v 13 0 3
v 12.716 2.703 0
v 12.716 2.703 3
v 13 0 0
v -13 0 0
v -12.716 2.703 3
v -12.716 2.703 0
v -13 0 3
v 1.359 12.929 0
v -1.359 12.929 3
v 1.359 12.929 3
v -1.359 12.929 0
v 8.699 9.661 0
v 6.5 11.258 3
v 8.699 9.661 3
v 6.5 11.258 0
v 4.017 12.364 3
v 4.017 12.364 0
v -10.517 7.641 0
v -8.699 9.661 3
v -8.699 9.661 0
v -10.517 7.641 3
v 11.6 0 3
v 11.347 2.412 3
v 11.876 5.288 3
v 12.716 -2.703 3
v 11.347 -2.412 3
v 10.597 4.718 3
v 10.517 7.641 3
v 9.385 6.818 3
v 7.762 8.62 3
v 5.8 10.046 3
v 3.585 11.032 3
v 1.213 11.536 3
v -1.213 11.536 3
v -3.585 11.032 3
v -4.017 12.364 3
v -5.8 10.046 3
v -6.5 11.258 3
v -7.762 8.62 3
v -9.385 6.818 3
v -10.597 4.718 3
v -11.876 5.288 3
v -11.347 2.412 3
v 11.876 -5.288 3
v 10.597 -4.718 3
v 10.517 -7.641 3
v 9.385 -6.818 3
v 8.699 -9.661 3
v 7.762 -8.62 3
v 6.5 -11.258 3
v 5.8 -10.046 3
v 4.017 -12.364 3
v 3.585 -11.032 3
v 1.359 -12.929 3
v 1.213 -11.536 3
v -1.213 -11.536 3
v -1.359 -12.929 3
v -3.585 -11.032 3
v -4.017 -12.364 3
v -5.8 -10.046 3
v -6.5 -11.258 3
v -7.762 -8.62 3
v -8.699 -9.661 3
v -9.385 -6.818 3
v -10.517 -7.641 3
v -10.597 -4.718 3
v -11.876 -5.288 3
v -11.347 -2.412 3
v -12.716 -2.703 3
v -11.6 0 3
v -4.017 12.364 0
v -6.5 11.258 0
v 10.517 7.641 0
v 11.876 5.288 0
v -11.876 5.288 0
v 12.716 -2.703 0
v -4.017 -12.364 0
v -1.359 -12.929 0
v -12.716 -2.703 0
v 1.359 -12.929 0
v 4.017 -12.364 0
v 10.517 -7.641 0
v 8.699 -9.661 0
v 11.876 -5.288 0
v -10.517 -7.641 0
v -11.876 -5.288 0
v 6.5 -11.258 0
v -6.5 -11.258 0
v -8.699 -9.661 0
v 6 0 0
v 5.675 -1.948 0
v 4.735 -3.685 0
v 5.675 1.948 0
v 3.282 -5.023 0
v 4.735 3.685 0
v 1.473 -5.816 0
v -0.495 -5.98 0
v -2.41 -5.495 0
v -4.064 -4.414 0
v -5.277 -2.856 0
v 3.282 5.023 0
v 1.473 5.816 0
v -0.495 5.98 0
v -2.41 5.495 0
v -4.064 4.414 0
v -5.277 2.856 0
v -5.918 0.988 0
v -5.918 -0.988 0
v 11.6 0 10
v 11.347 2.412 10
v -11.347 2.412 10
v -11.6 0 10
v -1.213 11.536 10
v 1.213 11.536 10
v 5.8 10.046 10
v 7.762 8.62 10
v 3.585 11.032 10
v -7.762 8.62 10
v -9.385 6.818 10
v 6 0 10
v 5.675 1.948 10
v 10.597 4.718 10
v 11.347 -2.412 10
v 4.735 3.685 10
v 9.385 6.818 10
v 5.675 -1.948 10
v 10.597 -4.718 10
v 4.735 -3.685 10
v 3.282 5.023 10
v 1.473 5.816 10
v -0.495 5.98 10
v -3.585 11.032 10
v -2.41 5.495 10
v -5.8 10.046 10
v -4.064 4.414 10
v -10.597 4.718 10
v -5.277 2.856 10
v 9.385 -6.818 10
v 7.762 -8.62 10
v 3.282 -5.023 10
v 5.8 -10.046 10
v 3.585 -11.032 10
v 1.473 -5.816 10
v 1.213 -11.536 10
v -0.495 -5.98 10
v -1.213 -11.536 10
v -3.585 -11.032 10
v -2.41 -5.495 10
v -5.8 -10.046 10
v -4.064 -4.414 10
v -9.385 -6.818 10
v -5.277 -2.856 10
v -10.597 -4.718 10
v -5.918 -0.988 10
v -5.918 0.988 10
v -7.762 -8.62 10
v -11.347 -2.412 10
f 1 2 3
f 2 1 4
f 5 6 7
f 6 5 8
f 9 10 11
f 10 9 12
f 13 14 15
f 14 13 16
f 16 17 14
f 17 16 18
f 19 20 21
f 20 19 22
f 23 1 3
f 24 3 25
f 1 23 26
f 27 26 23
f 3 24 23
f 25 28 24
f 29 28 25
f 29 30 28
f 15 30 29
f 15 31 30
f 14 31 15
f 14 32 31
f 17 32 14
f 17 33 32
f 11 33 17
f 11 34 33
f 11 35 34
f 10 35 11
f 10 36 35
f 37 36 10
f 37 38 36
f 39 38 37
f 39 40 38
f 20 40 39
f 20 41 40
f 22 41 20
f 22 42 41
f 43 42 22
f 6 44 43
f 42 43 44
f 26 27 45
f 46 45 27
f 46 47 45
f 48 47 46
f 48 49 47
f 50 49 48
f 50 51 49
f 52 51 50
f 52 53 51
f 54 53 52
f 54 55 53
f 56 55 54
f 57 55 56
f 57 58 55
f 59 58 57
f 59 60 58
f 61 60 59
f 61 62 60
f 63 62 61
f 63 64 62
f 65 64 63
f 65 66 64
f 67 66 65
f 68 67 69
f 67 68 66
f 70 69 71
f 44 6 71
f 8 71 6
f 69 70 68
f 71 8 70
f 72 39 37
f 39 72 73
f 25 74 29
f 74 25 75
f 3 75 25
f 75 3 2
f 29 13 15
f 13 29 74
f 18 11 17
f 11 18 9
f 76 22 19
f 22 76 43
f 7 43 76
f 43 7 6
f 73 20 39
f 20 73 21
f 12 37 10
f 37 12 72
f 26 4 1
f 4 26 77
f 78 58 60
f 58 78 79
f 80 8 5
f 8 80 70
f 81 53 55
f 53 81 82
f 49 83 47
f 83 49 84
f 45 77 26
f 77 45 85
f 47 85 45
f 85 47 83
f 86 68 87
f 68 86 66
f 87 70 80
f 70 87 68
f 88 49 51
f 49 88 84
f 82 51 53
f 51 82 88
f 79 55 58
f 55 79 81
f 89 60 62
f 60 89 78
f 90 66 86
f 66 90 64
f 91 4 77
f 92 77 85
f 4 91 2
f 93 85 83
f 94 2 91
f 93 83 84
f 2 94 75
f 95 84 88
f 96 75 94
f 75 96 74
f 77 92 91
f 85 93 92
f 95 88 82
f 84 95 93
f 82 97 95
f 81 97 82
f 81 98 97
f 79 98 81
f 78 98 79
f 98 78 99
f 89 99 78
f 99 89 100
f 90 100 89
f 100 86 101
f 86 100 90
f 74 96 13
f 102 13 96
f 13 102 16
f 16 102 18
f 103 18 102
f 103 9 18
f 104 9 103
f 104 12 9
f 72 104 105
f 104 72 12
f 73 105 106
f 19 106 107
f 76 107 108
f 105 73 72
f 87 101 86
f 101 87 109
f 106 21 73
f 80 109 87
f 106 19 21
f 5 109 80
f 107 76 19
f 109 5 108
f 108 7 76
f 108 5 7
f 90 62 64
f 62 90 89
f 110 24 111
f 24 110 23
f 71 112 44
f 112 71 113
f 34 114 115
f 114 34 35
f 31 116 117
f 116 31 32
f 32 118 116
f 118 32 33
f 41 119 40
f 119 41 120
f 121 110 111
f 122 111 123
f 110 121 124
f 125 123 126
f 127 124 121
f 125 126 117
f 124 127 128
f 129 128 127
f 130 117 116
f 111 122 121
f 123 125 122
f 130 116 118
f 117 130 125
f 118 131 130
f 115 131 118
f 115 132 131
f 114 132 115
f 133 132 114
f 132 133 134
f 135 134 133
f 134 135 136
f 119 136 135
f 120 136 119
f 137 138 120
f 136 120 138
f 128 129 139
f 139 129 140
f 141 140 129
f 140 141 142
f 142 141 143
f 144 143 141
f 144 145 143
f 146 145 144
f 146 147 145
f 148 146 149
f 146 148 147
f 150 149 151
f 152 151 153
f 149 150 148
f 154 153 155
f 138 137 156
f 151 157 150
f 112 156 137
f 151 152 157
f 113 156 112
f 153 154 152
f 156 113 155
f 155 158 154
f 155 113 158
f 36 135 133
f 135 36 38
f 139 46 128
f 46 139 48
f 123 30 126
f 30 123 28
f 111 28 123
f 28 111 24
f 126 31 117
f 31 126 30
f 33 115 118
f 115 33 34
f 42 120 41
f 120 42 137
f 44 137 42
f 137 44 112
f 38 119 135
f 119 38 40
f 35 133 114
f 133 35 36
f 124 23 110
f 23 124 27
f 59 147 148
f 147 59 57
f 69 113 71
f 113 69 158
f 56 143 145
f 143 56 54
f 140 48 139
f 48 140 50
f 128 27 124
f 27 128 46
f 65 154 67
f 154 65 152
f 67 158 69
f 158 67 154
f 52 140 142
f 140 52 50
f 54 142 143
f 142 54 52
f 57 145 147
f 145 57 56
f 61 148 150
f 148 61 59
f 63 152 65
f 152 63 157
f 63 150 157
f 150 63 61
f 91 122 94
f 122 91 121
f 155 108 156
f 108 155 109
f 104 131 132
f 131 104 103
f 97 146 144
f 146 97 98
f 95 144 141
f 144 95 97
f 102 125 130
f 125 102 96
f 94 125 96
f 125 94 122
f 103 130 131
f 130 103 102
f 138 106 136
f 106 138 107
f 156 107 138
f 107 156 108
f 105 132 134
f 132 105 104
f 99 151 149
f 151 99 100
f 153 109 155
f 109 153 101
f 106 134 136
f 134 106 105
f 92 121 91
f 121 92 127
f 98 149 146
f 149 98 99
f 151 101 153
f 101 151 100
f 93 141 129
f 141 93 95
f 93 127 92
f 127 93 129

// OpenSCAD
difference(){
union(){
  cylinder(d=26, h=3);
  cylinder(d=23.2, h=10);
}
  cylinder(d=12, h=10);
}
